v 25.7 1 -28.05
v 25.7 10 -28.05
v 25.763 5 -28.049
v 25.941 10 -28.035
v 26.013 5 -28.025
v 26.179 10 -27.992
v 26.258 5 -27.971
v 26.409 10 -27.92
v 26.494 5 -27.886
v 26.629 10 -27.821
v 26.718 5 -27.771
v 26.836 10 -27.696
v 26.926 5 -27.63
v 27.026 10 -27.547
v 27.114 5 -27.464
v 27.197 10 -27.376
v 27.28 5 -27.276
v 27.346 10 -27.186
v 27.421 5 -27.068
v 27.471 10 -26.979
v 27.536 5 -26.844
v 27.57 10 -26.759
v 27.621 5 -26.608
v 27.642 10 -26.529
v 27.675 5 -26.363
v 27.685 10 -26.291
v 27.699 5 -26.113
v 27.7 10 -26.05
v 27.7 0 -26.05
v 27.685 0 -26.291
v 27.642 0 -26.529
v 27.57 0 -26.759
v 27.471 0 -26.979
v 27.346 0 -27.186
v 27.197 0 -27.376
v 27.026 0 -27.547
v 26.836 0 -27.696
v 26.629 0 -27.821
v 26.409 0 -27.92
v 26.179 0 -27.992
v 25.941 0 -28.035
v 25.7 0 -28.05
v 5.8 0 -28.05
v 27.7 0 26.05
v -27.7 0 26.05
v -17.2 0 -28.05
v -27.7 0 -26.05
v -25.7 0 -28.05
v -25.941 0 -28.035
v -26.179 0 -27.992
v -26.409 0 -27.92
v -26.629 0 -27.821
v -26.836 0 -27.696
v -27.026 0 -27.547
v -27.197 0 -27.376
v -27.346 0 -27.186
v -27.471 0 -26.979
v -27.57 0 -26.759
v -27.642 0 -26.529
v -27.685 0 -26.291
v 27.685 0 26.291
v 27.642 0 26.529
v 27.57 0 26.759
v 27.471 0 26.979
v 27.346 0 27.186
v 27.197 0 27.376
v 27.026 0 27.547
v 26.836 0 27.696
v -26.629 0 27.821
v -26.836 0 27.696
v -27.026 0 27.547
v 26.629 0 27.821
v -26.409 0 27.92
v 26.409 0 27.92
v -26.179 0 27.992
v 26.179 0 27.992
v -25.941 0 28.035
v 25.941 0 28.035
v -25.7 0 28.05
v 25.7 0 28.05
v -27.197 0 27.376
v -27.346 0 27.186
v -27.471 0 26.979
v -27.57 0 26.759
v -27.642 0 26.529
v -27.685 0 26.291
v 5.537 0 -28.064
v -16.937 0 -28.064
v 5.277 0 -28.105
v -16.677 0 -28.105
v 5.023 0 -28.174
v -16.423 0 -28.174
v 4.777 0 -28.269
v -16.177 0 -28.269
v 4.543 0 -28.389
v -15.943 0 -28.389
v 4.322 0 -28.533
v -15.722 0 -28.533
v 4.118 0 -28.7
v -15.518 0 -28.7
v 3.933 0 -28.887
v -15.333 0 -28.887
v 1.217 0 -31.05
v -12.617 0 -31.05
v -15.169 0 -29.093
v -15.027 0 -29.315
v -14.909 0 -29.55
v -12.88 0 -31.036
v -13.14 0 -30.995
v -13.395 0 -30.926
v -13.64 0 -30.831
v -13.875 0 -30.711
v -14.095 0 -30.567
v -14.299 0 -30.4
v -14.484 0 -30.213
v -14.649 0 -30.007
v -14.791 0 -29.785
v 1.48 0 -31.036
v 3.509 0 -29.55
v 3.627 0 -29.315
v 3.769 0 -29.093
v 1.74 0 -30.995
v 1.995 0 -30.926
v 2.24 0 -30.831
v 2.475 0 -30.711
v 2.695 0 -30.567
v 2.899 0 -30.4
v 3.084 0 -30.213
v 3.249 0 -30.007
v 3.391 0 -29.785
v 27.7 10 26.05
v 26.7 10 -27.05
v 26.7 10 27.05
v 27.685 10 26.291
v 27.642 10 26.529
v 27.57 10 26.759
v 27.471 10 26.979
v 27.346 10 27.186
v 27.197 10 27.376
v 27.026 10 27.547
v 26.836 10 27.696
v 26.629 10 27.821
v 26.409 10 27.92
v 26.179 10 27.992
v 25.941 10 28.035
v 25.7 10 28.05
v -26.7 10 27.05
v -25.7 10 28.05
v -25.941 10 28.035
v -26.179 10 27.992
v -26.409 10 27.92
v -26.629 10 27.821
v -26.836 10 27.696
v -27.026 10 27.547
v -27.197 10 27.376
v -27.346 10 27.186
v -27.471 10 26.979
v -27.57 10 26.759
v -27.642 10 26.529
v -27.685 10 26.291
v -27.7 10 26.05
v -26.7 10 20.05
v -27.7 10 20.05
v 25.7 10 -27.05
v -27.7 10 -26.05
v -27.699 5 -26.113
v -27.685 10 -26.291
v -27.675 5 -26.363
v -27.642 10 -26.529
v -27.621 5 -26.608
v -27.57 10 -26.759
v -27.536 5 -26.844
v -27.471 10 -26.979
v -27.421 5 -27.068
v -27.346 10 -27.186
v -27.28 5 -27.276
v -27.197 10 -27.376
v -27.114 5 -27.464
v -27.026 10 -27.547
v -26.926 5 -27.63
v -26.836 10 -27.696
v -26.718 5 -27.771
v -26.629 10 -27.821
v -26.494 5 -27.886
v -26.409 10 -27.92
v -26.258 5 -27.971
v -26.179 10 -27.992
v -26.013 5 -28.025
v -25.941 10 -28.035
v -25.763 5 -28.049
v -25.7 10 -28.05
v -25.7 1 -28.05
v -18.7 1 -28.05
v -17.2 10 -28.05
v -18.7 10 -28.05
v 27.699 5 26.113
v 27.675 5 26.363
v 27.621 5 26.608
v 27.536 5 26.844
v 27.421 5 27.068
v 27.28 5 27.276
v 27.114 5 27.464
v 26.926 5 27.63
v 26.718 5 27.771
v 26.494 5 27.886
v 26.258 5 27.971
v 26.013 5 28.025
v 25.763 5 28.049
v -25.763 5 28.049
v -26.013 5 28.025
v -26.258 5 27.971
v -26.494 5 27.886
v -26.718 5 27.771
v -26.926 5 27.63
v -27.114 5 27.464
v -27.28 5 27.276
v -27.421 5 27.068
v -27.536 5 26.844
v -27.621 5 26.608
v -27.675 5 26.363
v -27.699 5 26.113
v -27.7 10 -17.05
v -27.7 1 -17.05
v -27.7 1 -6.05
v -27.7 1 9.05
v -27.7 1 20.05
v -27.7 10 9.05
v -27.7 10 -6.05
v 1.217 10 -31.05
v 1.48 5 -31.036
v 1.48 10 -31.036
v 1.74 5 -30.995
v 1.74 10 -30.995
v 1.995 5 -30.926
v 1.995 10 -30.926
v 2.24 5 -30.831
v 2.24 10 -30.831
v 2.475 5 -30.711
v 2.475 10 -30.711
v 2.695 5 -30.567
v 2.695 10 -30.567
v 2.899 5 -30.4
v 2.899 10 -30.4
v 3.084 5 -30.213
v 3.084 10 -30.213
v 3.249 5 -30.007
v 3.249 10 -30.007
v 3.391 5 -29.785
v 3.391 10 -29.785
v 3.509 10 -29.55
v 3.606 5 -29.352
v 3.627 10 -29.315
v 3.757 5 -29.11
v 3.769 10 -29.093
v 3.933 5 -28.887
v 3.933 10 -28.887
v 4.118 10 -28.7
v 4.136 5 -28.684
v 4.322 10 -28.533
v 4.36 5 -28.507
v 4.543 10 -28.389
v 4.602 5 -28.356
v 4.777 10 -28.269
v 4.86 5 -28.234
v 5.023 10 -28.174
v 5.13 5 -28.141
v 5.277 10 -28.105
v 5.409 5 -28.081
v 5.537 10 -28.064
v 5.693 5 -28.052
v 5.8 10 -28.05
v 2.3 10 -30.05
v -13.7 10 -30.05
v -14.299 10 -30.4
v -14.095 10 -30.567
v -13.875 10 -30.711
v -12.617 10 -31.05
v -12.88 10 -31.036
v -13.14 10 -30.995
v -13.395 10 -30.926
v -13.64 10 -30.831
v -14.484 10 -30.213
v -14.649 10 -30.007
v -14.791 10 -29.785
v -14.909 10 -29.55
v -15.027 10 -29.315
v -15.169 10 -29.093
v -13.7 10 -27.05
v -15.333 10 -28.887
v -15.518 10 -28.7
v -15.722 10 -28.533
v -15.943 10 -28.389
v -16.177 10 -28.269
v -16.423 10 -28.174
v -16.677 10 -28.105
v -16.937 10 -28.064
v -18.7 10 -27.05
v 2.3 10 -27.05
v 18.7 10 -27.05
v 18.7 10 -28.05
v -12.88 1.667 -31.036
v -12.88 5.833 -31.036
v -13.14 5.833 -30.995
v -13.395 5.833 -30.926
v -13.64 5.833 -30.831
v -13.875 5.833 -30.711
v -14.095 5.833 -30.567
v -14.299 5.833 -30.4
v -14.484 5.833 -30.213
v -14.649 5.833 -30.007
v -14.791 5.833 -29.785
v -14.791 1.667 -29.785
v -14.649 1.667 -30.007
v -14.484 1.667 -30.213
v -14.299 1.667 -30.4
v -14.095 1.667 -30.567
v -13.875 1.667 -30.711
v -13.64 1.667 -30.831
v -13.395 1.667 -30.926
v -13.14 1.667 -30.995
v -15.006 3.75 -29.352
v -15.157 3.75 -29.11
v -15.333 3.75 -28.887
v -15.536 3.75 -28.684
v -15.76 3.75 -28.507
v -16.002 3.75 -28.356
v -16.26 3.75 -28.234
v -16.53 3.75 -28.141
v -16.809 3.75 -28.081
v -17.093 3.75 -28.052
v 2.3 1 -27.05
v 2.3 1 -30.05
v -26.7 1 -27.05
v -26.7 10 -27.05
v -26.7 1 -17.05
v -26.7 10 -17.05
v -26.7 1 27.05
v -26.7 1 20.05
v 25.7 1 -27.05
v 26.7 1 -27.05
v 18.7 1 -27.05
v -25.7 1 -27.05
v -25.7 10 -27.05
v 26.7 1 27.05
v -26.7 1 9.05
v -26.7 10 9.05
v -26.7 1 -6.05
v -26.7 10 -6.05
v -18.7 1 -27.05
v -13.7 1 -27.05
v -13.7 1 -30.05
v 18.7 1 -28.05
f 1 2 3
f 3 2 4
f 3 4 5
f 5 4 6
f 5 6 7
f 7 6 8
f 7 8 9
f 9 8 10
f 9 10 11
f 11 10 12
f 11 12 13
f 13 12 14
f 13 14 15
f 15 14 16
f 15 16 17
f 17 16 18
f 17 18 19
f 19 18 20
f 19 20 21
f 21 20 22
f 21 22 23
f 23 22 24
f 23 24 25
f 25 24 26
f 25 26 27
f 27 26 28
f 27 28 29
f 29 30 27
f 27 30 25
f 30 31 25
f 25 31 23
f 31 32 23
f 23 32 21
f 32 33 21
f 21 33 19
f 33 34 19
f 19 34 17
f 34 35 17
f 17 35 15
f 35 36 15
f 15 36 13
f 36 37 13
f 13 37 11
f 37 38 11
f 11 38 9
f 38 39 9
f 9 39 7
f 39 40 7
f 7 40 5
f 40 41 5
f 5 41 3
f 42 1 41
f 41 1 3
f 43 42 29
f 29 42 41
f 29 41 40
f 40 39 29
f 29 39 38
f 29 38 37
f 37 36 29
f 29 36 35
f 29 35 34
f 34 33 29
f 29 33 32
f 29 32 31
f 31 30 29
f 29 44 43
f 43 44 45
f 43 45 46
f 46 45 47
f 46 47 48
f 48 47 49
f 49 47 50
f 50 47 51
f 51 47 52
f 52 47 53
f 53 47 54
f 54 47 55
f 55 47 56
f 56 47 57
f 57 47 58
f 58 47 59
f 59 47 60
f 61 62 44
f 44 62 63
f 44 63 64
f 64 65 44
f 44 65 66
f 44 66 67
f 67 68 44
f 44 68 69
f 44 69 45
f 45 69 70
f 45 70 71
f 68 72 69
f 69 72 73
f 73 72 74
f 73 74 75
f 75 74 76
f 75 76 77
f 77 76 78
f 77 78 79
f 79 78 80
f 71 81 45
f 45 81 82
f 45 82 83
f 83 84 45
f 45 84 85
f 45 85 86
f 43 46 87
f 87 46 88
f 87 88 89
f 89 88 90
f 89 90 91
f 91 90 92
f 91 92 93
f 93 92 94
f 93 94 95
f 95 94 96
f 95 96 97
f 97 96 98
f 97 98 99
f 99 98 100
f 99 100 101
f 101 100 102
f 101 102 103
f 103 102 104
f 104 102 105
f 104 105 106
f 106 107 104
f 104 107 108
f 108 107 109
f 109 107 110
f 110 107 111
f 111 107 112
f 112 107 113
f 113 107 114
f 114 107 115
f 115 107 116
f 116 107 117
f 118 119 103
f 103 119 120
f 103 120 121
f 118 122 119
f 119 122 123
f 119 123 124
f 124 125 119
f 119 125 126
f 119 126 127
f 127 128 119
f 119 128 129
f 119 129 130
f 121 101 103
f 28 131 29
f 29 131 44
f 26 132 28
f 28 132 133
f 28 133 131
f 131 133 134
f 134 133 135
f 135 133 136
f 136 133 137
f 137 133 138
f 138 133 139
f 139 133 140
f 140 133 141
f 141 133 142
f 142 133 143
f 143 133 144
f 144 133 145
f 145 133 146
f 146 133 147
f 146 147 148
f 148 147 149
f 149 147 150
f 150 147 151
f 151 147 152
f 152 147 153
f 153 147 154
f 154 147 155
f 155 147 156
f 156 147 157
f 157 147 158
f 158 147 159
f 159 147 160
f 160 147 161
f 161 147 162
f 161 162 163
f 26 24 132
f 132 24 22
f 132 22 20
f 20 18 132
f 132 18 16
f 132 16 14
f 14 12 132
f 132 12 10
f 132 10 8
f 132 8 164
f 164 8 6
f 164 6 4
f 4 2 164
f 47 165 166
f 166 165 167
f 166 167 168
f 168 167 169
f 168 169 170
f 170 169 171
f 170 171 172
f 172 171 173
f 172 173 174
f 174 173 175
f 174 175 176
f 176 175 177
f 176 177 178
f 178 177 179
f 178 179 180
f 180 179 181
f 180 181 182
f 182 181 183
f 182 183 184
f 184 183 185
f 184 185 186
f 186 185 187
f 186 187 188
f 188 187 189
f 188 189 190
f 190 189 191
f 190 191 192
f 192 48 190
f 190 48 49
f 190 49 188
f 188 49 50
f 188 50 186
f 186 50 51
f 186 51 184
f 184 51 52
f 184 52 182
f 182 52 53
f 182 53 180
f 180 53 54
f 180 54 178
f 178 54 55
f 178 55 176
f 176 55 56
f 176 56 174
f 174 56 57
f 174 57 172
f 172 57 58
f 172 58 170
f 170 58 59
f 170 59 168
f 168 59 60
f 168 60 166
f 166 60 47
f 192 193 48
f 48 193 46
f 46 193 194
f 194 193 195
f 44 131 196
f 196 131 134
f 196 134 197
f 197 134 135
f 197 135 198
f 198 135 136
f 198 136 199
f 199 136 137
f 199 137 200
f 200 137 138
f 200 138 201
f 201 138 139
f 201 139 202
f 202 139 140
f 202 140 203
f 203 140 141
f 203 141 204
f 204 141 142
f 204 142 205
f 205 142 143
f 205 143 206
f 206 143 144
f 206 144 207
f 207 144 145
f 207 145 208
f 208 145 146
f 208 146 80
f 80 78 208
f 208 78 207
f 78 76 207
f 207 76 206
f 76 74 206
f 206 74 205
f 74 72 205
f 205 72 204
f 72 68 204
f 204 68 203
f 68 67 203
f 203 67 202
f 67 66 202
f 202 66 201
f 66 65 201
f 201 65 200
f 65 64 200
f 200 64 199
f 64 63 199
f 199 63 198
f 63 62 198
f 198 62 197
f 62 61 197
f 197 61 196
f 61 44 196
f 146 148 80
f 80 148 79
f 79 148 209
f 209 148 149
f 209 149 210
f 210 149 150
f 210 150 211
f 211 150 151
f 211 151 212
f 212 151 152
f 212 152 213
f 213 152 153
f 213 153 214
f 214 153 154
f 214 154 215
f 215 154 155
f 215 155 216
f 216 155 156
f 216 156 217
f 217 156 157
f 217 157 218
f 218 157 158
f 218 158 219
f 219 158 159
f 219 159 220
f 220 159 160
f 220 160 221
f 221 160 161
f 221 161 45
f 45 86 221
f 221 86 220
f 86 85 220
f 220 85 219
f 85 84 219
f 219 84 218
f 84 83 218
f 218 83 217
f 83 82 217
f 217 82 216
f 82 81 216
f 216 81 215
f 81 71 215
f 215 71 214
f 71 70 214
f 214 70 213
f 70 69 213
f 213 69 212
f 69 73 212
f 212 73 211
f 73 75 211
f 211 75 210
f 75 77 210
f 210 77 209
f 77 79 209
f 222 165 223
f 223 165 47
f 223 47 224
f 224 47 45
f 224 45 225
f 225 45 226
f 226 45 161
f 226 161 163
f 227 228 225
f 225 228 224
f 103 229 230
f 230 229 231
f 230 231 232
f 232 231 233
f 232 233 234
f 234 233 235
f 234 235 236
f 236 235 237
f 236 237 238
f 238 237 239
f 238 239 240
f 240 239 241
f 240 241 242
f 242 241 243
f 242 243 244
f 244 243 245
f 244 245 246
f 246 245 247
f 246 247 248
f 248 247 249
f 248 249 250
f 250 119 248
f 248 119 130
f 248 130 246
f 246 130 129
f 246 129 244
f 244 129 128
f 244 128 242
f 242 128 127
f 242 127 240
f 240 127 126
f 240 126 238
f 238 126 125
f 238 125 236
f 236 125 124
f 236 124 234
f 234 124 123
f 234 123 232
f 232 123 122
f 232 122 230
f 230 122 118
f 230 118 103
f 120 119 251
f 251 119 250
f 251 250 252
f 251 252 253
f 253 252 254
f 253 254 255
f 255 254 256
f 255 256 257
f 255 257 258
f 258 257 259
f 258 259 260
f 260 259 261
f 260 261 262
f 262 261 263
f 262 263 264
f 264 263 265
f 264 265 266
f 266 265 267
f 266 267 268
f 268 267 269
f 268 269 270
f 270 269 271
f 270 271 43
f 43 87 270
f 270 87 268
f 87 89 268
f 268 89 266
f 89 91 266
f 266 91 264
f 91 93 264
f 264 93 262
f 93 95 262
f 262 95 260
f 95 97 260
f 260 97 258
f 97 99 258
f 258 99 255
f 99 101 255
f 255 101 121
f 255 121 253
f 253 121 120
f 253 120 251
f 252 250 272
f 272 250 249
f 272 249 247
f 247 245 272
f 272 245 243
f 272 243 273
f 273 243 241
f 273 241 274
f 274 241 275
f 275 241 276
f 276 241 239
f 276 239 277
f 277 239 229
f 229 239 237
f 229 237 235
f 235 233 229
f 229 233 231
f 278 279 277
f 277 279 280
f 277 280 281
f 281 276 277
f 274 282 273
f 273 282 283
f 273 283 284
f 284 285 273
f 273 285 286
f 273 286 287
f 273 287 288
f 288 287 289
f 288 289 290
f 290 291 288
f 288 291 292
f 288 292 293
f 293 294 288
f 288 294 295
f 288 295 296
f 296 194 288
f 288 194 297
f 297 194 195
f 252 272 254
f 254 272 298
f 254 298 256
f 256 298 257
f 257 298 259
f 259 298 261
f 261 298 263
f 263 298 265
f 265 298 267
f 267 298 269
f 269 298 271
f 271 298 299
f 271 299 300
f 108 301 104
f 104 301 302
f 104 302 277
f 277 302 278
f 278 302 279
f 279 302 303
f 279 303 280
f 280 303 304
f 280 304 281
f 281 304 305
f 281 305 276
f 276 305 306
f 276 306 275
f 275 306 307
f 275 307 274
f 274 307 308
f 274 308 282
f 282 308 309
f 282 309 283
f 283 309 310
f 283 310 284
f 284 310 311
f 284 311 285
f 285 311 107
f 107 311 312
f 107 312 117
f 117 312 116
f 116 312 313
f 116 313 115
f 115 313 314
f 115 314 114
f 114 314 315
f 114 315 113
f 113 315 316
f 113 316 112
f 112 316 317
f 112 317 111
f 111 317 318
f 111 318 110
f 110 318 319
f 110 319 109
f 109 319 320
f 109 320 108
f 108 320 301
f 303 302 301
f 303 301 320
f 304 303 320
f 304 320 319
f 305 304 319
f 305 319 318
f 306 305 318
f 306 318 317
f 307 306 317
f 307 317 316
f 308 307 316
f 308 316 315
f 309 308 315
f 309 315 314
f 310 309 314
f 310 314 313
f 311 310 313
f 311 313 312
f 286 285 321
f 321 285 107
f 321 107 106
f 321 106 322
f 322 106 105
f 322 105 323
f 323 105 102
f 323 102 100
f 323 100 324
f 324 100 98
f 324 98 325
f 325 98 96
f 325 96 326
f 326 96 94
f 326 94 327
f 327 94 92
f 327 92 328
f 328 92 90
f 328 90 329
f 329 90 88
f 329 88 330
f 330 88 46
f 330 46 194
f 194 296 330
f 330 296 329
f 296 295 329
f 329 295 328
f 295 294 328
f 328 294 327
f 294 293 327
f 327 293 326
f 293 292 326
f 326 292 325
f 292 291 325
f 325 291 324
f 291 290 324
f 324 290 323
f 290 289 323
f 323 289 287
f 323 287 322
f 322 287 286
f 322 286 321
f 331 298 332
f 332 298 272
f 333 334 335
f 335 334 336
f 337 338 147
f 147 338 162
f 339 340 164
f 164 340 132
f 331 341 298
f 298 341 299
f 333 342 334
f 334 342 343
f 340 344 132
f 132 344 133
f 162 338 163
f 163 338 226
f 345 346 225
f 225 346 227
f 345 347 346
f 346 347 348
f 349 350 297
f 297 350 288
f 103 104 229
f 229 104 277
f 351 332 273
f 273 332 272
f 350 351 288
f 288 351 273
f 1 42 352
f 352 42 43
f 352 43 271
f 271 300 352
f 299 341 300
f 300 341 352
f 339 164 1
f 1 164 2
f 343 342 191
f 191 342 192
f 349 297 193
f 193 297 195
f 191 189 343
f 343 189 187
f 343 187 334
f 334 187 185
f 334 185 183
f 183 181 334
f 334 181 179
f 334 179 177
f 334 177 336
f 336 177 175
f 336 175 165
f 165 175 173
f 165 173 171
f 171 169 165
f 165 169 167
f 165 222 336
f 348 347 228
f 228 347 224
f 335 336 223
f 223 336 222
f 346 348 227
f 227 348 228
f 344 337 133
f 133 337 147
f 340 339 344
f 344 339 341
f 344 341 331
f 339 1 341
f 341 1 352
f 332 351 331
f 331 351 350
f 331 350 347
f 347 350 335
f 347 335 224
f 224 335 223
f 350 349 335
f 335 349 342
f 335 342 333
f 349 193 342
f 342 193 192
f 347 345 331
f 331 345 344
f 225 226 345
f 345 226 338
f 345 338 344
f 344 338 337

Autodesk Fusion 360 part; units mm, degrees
sketch "Sketch1" plane through (0, 0, 0) normal (0, 1, 0) x (1, 0, 0)
  line L0 (26.7, -27.05) -> (-26.7, -27.05)
  line L1 (-26.7, -27.05) -> (-26.7, 27.05)
  line L2 (-26.7, 27.05) -> (26.7, 27.05)
  line L3 (26.7, 27.05) -> (26.7, -27.05)
  line L4 (26.7, -27.05) -> (-26.7, 27.05) construction
  line L5 (-26.7, -27.05) -> (26.7, 27.05) construction
  line L6 (-27.7, -28.05) -> (-27.7, 28.05)
  line L7 (-27.7, 28.05) -> (27.7, 28.05)
  line L8 (27.7, 28.05) -> (27.7, -28.05)
  line L9 (27.7, -28.05) -> (-27.7, -28.05)
  dimension "d1" = 53.4
  dimension "d2" = 54.1
  dimension "d3" = -1
extrude "Extrude2" add sketch "Sketch1" along normal blind 1 contours L0 L1 L2 L3 makes body 1
extrude "Extrude1" add sketch "Sketch1" along normal blind 10 separate body makes body 2
sketch "Sketch2" plane through (-27.7, 0, 0) normal (-1, 0, 0) x (0, 0, 1)
  line L0 (-28.05, 0) -> (28.05, 0)
  line L1 (28.05, 0) -> (28.05, 10)
  line L2 (28.05, 10) -> (-28.05, 10)
  line L3 (-28.05, 10) -> (-28.05, 0)
  line L4 (-28.05, 5) -> (-6.05, 5)
  line L5 (-13, 0) -> (-13, 1)
  line L6 (-6.05, 1) -> (-17.05, 1)
  line L7 (-17.05, 1) -> (-17.05, 10)
  line L8 (-17.05, 10) -> (-6.05, 10)
  line L9 (-6.05, 10) -> (-6.05, 1)
  dimension "d8" = 22
  dimension "d9" = 11
extrude "Extrude3" cut sketch "Sketch2" against normal blind 16 contours L4 L6 L7 L9 | L2 L4 L7 L8 L9 bodies 2
sketch "Sketch3" plane through (0, 0, -28.05) normal (0, 0, -1) x (-1, 0, 0)
  line L0 (-27.7, 0) -> (27.7, 0)
  line L1 (27.7, 0) -> (27.7, 10)
  line L2 (27.7, 10) -> (-27.7, 10)
  line L3 (-27.7, 10) -> (-27.7, 0)
  line L4 (27.7, 5) -> (25.7, 5)
  line L5 (-27.7, 5) -> (-25.7, 5)
  line L6 (-23, 0) -> (-23, 1)
  line L7 (-25.7, 1) -> (-18.7, 1)
  line L8 (-18.7, 1) -> (-18.7, 10)
  line L9 (-18.7, 10) -> (-25.7, 10)
  line L10 (-25.7, 10) -> (-25.7, 1)
  line L11 (25.7, 1) -> (18.7, 1)
  line L12 (18.7, 1) -> (18.7, 10)
  line L13 (18.7, 10) -> (25.7, 10)
  line L14 (25.7, 10) -> (25.7, 1)
  dimension "d12" = 2
  dimension "d13" = 2
  dimension "d14" = 1
  dimension "d15" = 7
  dimension "d16" = 7
extrude "Extrude4" cut sketch "Sketch3" against normal blind 23 contours L2 L7 L8 L9 L10 | L2 L11 L12 L13 L14 bodies 2
sketch "Sketch4" plane through (0, 0, 0) normal (0, 1, 0) x (1, 0, 0)
  line L0 (-18.7, 28.05) -> (-13.7, 28.05)
  line L1 (-13.7, 28.05) -> (-13.7, 30.05)
  line L2 (-13.7, 30.05) -> (-7.7, 30.05)
  line L3 (-13.7, 28.05) -> (-13.7, 27.05)
  line L4 (-7.7, 27.05) -> (-13.7, 27.05)
  line L5 (-13.7, 27.05) -> (-13.7, 30.05)
  line L6 (-13.7, 30.05) -> (-7.7, 30.05)
  line L7 (-7.7, 30.05) -> (-7.7, 27.05)
  line L8 (-14.7, 26.05) -> (-14.7, 31.05)
  line L9 (-14.7, 31.05) -> (-6.7, 31.05)
  line L10 (-6.7, 31.05) -> (-6.7, 26.05)
  line L11 (-6.7, 26.05) -> (-14.7, 26.05)
  line L12 (-14.7, 28.05) -> (-13.7, 28.05)
  line L13 (-7.7, 28.05) -> (-6.7, 28.05)
  line L14 (-13.7, 28.05) -> (-7.7, 28.05)
  dimension "d19" = 5
  dimension "d20" = 2
  dimension "d21" = 6
  dimension "d22" = 1
  dimension "d23" = -1
extrude "Extrude6" add sketch "Sketch4" along normal blind 10 contours L0 L1 L2 L5 L6 L7 L8 L9 L10 L12 L13 bodies 2
extrude "Extrude5" add sketch "Sketch4" along normal blind 1 contours L1 L2 L5 L6 L7 L14 bodies 2
sketch "Sketch5" plane through (0, 10, 0) normal (0, 1, 0) x (-1, 0, 0)
  line L0 (7.7, -28.05) -> (13.7, -28.05)
  line L1 (13.7, -28.05) -> (13.7, -30.05)
  line L2 (13.7, -30.05) -> (7.7, -30.05)
  line L3 (7.7, -30.05) -> (7.7, -28.05)
  line L4 (6.7, -28.05) -> (6.7, -31.05)
  line L5 (6.7, -31.05) -> (14.7, -31.05)
  line L6 (14.7, -31.05) -> (14.7, -28.05)
  line L7 (14.7, -28.05) -> (18.7, -28.05)
  line L8 (18.7, -28.05) -> (18.7, -27.05)
  line L9 (18.7, -27.05) -> (-18.7, -27.05)
  line L10 (-18.7, -27.05) -> (-18.7, -28.05)
  line L11 (-18.7, -28.05) -> (6.7, -28.05)
  line L12 (13.7, -28.05) -> (7.7, -28.05)
  line L13 (7.7, -28.05) -> (7.7, -27.05)
  line L14 (7.7, -27.05) -> (13.7, -27.05)
  line L15 (13.7, -27.05) -> (13.7, -28.05)
extrude "Extrude7" cut sketch "Sketch5" against normal blind 9 contours L0 L9 L12 L13 L14 L15 bodies 2
sketch "Sketch6" plane through (-27.7, 0, 0) normal (-1, 0, 0) x (0, 0, 1)
  line L0 (-6.05, 10) -> (-6.05, 1)
  line L1 (-6.05, 1) -> (-17.05, 1)
  line L2 (-17.05, 1) -> (-17.05, 10)
  line L3 (-17.05, 10) -> (-28.05, 10)
  line L4 (-28.05, 10) -> (-28.05, 0)
  line L5 (-28.05, 0) -> (28.05, 0)
  line L6 (28.05, 0) -> (28.05, 10)
  line L7 (28.05, 10) -> (-6.05, 10)
  line L8 (28.05, 5) -> (20.05, 5)
  line L9 (21, 0) -> (21, 1)
  line L10 (20.05, 1) -> (9.05, 1)
  line L11 (9.05, 1) -> (9.05, 10.929)
  line L12 (9.05, 10.929) -> (20.05, 10.929)
  line L13 (20.05, 10.929) -> (20.05, 1)
  dimension "d30" = 8
  dimension "d31" = 11
extrude "Extrude8" cut sketch "Sketch6" against normal blind 9 contours L7 L11 L12 L13 | L7 L10 L11 L13 bodies 2
combine "Combine1" operation add target body 1 tool bodies 2
sketch "Sketch7" plane through (0, 0, -27.05) normal (0, 0, 1) x (1, 0, 0)
  line L0 (-7.7, 1) -> (18.7, 1)
  line L1 (18.7, 1) -> (18.7, 10)
  line L2 (18.7, 10) -> (-7.7, 10)
  line L3 (-7.7, 10) -> (-7.7, 1)
  line L4 (-7.7, 10) -> (2.3, 10)
  line L5 (2.3, 10) -> (2.3, 1)
  line L6 (2.3, 1) -> (-7.7, 1)
  line L7 (-7.7, 1) -> (-7.7, 10)
  dimension "d34" = 10
extrude "Extrude9" cut sketch "Sketch7" against normal blind 3 contours L0 L2 L3 L4 L5 L6 L7 bodies 1
sketch "Sketch8" plane through (0, 0, 0) normal (0, 1, 0) x (1, 0, 0)
extrude "Extrude10" add 1 faces at (-6.7, 3.6667, -30.7167) along direction (1, 0, 0) blind 9 on bodies 1 bodies 1
sketch "Sketch9" plane through (0, 0, -28.05) normal (0, 0, -1) x (-1, 0, 0)
  line L0 (-2.3, 0) -> (-2.3, 1)
  line L1 (-2.3, 1) -> (-2.3, 10)
  line L2 (-2.3, 10) -> (-18.7, 10)
  line L3 (-18.7, 10) -> (-18.7, 1)
  line L4 (-18.7, 1) -> (-25.7, 1)
  line L5 (-25.7, 1) -> (-25.7, 10)
  line L6 (-25.7, 10) -> (-27.7, 10)
  line L7 (-27.7, 10) -> (-27.7, 0)
  line L8 (-27.7, 0) -> (-2.3, 0)
  line L9 (-2.3, 10) -> (-3.3, 10)
  line L10 (-3.3, 10) -> (-3.3, 0)
  line L11 (-3.3, 0) -> (-2.3, 0)
  line L12 (-2.3, 0) -> (-2.3, 10)
  dimension "d39" = 1
extrude "Extrude11" add sketch "Sketch9" along normal blind 3 contours L0 L1 L2 L8 L9 L10 L11 L12 bodies 1
fillet "Fillet1" radius 2.5 4 edges at (-14.7, 5, -28.05) (-14.7, 5, -31.05) (3.3, 5, -28.05) (3.3, 5, -31.05) on bodies 1
fillet "Fillet2" radius 2 4 edges at (-27.7, 5, 28.05) (27.7, 5, 28.05) (-27.7, 5, -28.05) (27.7, 5, -28.05) on bodies 1
